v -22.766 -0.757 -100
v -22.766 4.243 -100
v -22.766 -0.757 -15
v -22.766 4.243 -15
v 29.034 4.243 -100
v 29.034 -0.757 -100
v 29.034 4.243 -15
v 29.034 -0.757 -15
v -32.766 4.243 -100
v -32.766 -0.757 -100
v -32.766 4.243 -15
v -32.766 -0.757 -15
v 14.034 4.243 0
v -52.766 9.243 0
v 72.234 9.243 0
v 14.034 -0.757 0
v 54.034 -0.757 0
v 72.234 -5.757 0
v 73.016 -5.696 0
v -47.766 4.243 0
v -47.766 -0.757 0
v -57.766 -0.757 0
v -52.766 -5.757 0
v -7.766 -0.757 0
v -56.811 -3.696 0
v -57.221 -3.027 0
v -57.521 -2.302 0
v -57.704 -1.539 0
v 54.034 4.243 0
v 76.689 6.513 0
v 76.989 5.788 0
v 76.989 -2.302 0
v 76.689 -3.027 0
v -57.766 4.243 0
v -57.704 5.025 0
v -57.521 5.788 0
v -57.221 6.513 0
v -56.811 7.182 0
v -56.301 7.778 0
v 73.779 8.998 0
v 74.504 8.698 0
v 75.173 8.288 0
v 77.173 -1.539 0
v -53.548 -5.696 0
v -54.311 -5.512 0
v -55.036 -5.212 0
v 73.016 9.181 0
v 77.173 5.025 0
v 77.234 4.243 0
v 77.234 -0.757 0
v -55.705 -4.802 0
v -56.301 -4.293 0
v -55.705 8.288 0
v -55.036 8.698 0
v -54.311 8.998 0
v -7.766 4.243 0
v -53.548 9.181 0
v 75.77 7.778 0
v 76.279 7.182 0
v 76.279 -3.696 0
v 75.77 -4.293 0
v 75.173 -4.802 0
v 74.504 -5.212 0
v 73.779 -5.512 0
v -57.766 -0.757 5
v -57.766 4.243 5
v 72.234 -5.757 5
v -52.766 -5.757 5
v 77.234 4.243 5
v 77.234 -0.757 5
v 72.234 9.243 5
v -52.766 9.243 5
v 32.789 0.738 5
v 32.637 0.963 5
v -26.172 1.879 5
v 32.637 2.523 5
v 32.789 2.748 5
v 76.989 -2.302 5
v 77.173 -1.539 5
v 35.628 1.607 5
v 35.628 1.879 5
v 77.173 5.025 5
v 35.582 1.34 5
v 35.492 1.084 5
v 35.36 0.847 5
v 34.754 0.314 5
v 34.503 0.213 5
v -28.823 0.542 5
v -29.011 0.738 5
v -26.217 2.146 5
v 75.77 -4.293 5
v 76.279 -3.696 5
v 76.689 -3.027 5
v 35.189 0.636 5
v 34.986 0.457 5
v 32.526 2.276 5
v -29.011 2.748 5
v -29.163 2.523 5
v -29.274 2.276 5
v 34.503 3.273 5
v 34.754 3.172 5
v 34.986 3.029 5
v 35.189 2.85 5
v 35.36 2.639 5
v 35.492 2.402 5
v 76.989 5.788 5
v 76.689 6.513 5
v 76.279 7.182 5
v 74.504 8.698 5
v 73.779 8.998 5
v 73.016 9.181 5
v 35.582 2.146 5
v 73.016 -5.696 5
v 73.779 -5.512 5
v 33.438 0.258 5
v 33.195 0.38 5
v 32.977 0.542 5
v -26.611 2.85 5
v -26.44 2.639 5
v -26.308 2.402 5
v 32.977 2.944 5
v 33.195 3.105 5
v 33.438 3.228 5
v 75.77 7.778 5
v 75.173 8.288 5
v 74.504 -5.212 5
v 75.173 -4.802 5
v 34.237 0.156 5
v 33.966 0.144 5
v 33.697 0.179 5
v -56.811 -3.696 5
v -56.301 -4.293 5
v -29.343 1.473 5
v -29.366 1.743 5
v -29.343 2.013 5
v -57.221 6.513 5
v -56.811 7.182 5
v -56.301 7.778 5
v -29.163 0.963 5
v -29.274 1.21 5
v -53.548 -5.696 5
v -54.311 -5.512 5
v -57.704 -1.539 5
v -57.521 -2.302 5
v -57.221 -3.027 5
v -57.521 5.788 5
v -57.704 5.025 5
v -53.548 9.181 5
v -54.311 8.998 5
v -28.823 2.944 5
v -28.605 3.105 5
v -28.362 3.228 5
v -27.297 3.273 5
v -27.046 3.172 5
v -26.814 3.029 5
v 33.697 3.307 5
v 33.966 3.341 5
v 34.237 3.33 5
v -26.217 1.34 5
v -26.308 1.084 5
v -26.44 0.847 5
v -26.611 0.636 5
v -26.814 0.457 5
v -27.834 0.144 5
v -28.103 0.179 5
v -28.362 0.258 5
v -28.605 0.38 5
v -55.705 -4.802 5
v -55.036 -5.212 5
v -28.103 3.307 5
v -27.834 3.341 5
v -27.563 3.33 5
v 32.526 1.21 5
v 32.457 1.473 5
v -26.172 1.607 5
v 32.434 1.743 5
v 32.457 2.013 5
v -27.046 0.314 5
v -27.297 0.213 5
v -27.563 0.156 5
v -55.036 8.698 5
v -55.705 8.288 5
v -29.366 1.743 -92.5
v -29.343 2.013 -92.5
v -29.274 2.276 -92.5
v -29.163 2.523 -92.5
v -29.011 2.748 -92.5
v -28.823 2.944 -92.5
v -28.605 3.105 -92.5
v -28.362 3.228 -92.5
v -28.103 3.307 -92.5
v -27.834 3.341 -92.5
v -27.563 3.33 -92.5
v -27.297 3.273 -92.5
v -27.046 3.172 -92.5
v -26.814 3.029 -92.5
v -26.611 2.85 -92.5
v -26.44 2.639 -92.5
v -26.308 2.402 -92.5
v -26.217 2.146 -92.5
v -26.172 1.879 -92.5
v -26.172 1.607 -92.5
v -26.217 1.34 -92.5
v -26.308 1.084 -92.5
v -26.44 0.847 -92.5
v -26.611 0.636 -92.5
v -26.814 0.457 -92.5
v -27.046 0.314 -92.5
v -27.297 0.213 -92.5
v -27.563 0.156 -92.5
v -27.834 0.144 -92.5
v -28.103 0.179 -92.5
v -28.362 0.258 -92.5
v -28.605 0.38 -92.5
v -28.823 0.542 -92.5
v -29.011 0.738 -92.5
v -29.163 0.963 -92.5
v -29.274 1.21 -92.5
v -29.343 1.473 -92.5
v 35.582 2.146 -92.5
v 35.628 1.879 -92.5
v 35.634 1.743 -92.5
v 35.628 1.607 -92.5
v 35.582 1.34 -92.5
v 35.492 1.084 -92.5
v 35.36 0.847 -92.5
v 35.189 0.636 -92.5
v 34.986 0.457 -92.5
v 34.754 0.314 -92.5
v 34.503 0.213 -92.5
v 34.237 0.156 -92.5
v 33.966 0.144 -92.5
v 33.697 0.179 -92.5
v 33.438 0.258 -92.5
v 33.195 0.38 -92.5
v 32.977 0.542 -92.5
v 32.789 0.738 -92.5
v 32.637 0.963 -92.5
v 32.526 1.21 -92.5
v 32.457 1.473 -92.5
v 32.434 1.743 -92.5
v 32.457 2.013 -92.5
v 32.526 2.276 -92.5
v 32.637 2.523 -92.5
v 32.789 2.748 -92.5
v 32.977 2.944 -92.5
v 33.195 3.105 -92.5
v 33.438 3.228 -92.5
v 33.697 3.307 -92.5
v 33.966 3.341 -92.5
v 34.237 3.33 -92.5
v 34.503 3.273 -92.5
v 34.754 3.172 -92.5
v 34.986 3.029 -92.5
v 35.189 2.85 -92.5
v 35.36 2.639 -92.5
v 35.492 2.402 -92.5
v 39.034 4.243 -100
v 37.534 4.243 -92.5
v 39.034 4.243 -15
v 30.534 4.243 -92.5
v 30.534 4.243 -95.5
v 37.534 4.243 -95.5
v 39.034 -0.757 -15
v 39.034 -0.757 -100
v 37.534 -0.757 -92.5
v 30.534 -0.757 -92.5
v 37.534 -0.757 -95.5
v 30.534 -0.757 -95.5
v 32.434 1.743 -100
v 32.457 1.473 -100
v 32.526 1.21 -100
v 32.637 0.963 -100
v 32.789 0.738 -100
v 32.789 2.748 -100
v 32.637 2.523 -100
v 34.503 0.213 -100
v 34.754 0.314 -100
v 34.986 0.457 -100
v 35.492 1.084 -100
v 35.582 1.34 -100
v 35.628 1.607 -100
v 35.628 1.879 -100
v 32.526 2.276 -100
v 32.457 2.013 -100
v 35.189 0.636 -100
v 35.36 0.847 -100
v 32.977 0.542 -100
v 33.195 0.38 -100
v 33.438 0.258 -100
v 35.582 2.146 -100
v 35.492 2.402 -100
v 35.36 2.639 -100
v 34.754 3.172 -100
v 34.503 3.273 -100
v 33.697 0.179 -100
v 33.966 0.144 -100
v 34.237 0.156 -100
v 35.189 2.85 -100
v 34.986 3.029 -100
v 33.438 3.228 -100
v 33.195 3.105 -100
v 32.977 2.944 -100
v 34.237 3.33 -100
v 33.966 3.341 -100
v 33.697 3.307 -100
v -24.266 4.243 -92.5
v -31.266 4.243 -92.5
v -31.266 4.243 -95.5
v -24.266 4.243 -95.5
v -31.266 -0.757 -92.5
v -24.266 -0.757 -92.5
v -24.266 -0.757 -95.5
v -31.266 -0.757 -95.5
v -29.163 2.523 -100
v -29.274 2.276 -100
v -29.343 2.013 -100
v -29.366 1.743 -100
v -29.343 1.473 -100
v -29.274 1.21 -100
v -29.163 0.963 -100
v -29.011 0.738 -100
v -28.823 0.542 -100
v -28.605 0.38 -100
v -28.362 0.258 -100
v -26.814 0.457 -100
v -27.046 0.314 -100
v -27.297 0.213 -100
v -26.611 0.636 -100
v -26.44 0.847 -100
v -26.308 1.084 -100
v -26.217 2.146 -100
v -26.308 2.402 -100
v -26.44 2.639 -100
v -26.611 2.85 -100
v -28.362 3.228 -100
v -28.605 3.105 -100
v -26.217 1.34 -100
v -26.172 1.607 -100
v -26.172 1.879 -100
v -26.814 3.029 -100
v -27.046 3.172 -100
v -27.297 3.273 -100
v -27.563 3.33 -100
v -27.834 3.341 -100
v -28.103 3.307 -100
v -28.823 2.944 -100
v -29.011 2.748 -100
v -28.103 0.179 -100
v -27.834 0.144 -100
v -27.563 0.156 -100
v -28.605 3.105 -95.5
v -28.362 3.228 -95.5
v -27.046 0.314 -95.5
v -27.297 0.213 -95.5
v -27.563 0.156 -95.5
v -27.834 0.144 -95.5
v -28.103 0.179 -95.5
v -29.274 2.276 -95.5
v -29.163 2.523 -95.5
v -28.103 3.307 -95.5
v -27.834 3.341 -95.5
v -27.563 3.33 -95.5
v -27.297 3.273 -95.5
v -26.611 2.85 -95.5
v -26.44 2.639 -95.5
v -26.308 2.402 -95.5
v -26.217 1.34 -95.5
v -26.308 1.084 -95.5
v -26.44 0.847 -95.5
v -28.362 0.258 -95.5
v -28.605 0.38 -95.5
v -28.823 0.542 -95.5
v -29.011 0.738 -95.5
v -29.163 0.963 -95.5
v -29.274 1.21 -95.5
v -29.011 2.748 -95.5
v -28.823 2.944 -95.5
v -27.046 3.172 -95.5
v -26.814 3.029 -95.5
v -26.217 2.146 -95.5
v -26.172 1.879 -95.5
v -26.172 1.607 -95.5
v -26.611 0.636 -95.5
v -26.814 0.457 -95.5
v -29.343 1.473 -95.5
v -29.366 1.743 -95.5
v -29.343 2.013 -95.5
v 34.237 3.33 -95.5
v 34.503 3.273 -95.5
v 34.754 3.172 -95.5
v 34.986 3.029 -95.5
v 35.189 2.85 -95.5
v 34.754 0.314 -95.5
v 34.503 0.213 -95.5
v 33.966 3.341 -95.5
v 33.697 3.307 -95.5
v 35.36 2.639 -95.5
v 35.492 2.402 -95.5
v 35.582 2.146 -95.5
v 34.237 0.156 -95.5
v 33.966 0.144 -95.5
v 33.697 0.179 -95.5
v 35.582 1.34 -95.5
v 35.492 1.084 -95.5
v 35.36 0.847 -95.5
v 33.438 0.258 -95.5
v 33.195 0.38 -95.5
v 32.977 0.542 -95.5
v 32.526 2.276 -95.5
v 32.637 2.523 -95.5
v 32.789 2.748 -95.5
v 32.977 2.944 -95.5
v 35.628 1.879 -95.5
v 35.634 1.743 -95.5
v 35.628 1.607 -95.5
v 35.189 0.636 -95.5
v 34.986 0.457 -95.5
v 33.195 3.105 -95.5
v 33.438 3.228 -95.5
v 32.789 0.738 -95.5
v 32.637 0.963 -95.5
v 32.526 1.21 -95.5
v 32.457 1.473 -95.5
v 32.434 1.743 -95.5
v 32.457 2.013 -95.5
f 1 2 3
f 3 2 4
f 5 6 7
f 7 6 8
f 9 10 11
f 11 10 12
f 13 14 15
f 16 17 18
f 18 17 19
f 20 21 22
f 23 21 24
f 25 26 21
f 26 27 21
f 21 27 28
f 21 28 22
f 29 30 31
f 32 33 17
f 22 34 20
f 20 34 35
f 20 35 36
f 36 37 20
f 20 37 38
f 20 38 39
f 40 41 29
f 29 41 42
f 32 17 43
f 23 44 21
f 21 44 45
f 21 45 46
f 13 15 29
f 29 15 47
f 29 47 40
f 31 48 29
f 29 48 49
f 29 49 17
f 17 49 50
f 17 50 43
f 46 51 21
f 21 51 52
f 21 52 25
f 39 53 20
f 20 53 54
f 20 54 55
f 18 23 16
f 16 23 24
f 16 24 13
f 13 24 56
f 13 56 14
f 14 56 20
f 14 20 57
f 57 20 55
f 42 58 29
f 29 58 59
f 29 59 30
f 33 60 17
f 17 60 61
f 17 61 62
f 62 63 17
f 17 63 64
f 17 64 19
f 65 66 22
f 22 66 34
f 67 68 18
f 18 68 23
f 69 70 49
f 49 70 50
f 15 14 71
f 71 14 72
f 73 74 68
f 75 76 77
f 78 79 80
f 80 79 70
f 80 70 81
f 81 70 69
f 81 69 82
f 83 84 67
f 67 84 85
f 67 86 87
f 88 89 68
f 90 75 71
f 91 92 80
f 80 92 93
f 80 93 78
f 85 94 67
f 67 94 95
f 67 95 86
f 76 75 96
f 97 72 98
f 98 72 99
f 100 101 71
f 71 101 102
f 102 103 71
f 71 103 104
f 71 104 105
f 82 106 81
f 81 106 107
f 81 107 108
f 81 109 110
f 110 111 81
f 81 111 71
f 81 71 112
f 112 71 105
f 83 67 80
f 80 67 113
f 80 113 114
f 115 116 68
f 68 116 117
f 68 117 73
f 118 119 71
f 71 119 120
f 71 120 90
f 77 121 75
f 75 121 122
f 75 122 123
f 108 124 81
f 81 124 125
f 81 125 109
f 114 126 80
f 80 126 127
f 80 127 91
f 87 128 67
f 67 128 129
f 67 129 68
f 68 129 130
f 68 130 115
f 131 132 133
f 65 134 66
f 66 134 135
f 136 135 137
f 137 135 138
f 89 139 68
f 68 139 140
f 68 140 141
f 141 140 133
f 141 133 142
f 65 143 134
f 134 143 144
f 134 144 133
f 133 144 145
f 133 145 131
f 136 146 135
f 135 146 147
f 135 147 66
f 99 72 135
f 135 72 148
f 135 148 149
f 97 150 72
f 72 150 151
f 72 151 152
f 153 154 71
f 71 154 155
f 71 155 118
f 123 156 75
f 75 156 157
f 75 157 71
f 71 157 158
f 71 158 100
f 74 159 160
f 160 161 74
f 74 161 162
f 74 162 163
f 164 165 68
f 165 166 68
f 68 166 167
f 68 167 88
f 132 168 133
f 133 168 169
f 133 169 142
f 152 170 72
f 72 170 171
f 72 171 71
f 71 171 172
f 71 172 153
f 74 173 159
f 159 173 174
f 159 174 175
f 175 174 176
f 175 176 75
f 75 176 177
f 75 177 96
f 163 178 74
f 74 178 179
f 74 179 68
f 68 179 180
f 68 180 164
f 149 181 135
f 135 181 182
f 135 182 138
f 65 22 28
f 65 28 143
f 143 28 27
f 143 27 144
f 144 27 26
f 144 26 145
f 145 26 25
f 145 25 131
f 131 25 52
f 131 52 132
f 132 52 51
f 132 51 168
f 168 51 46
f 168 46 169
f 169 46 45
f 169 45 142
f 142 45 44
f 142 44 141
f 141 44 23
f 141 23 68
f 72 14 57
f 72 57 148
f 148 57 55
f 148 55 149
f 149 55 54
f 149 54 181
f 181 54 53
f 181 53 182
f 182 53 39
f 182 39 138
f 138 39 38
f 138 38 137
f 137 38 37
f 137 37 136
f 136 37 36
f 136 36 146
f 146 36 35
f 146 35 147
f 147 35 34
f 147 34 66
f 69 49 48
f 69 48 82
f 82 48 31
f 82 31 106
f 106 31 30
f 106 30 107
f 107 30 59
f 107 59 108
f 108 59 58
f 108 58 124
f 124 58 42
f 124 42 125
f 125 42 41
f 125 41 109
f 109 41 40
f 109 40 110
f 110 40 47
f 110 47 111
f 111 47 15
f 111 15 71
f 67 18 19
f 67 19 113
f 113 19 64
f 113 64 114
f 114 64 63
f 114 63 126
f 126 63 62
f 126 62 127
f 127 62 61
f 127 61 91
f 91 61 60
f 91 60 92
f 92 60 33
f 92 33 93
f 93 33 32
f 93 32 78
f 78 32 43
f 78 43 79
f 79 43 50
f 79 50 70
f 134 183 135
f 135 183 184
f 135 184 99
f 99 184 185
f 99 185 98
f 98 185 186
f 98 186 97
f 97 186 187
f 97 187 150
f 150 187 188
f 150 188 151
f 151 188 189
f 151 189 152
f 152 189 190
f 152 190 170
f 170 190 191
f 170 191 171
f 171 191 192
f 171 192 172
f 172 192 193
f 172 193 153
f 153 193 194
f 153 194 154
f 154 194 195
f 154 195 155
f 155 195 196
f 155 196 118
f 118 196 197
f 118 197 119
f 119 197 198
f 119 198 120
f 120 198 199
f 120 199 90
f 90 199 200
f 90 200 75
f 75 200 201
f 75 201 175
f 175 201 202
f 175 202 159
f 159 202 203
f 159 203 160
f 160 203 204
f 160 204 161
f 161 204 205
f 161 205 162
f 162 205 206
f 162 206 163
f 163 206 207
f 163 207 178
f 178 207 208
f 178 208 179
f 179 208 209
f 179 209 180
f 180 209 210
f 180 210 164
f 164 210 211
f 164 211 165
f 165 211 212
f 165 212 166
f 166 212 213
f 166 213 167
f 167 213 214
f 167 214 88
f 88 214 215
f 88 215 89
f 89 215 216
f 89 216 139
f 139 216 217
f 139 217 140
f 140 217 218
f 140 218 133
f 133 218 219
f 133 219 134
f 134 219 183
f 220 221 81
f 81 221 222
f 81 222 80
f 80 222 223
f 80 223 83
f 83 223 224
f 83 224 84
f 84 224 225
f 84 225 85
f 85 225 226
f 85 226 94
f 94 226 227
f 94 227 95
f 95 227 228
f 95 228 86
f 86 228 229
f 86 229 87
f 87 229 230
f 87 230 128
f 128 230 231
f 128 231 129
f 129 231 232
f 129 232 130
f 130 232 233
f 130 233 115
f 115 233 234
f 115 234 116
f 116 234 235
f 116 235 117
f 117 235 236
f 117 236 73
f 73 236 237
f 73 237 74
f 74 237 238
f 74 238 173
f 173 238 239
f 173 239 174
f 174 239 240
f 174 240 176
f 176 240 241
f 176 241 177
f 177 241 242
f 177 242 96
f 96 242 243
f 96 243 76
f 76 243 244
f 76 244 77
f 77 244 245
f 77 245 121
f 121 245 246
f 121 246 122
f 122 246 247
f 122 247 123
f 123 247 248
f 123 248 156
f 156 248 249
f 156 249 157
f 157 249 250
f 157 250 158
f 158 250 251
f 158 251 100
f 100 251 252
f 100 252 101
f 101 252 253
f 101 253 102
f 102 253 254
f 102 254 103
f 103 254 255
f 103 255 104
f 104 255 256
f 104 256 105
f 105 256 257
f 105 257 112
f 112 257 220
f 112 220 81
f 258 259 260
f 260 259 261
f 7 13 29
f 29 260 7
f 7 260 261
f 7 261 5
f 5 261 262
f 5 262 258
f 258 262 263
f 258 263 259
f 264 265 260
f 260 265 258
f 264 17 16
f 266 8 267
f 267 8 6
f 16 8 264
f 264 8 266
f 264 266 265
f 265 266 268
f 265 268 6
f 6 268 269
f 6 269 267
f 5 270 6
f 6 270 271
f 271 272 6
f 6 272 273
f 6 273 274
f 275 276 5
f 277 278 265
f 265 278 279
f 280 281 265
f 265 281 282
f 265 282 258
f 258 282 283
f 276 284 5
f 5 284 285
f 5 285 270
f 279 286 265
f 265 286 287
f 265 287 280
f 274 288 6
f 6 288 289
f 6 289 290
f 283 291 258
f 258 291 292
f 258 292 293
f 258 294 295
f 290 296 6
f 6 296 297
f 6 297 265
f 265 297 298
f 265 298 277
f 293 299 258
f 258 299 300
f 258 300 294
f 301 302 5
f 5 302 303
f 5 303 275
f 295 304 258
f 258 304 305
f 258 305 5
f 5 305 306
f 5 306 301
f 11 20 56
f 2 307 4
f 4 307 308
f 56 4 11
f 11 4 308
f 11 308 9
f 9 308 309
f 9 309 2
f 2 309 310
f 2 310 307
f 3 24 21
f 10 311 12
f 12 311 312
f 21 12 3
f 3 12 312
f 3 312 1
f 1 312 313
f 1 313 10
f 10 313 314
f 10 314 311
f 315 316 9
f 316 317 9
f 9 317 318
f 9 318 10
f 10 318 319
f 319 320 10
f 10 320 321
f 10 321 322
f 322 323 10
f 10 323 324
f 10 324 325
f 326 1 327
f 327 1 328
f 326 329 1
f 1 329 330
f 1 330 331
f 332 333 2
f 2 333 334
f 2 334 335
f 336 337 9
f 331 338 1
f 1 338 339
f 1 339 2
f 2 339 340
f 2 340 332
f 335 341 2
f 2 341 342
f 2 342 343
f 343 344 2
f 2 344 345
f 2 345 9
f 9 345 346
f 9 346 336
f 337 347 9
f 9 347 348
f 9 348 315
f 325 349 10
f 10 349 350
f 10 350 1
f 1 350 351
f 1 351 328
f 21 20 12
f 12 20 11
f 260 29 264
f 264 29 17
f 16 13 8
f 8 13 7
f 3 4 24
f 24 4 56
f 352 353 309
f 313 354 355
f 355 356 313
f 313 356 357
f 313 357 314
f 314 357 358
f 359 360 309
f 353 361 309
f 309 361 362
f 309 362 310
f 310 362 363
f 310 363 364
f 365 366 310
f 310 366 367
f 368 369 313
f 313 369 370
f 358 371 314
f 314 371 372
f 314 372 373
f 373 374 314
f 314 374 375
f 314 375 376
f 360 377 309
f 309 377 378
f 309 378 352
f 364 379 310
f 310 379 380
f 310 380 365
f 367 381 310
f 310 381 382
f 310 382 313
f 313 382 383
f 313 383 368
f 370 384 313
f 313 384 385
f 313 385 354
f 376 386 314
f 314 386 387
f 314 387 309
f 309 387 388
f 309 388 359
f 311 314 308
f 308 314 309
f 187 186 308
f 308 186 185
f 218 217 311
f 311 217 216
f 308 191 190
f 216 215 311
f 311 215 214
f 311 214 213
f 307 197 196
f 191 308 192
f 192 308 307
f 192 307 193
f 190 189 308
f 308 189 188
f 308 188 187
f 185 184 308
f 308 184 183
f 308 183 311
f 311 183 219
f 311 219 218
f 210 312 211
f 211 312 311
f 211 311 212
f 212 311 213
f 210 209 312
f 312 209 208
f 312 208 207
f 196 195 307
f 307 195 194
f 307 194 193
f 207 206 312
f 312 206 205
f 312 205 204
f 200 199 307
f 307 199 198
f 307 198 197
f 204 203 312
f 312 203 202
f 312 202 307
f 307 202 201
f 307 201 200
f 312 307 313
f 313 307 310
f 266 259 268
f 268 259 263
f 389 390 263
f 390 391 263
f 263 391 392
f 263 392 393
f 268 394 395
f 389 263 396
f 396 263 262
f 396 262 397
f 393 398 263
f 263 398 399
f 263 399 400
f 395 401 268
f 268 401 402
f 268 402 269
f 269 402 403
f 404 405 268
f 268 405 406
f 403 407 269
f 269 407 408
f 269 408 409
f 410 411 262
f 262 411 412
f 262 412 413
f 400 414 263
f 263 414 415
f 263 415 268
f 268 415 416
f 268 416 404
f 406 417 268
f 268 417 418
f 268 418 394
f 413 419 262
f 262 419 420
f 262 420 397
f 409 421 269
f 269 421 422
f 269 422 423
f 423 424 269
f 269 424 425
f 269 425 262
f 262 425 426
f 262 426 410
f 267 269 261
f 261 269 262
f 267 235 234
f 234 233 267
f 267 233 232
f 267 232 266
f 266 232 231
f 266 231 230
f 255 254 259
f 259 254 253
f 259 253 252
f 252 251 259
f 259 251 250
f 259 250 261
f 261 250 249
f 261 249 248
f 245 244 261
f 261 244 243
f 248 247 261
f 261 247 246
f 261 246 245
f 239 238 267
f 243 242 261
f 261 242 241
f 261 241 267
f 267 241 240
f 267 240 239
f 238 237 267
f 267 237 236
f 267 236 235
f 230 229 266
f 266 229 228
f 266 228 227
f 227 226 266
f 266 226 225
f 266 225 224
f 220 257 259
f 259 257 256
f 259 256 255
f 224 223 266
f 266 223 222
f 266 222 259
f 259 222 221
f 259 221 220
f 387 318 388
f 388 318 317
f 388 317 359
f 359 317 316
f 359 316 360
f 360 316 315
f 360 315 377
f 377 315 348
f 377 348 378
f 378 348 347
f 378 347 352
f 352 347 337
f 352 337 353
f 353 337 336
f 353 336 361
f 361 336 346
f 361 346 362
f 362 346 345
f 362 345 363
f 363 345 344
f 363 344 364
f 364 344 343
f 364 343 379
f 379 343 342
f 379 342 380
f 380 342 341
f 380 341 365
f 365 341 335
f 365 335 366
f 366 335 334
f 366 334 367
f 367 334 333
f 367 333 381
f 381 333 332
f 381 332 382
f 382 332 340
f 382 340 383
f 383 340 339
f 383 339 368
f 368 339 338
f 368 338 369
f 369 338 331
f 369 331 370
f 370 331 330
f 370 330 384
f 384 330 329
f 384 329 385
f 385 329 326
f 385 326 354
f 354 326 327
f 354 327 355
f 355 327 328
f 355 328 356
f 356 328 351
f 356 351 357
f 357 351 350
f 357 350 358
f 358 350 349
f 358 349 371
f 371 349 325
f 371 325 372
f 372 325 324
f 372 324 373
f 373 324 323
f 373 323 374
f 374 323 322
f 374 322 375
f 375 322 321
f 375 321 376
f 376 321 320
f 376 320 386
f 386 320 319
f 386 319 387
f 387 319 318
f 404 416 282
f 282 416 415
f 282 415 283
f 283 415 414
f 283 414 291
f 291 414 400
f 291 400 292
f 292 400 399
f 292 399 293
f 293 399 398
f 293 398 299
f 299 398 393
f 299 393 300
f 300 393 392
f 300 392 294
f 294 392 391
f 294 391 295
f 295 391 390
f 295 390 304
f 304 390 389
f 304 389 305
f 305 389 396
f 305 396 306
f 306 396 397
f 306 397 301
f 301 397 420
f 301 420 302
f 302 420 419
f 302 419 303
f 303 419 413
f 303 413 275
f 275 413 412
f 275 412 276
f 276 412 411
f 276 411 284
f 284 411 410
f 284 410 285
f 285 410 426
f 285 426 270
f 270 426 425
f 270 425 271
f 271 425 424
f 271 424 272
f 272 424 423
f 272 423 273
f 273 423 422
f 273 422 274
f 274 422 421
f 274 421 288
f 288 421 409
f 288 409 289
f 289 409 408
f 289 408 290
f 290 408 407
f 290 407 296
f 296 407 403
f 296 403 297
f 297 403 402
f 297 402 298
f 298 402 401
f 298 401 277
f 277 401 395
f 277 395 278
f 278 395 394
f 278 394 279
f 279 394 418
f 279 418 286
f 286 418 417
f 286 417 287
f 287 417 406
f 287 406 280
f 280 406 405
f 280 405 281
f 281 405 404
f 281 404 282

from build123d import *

# Parameters (mm, degrees)
ESBO_O1_W                  = 135
ESBO_O1_H                  = 15
RESSALTO_EXTRUS_O1_DEPTH   = 5
FILETE1_R                  = 5
FILETE2_R                  = 5
ESBO_O3_R                  = 1.6
CORTE_EXTRUS_O1_DEPTH      = 5
ESBO_O5_W                  = 10
ESBO_O5_H                  = 5
RESSALTO_EXTRUS_O4_DEPTH   = 100
RESSALTO_EXTRUS_O5_START   = -2.5
RESSALTO_EXTRUS_O5_DEPTH   = 5
RESSALTO_EXTRUS_O6_DEPTH   = 5
RESSALTO_EXTRUS_O7_START   = -2.5
RESSALTO_EXTRUS_O7_DEPTH   = 5
CORTE_EXTRUS_O2_DEPTH      = 100
CORTE_EXTRUS_O2_DEPTH_BACK = 100
ESBO_O10_W                 = 7
ESBO_O10_H                 = 3
ESBO_O11_R                 = 1.6
CORTE_EXTRUS_O3_DEPTH      = 131.673419179


with BuildPart() as part:
    # Esboço1 → Ressalto-extrusão1 (new body)
    with BuildSketch(Plane.XY):
        with Locations((9.734129461, 1.742928443)):
            Rectangle(ESBO_O1_W, ESBO_O1_H)
    extrude(amount=RESSALTO_EXTRUS_O1_DEPTH)

    # Filete1
    filete1_edges = [part.edges().sort_by_distance(p)[0] for p in [
        (-57.765870539, 9.242928443, 2.5),
        (-57.765870539, -5.757071557, 2.5),
    ]]
    fillet(filete1_edges, radius=FILETE1_R)

    # Filete2
    filete2_edges = [part.edges().sort_by_distance(p)[0] for p in [
        (77.234129461, 9.242928443, 2.5),
        (77.234129461, -5.757071557, 2.5),
    ]]
    fillet(filete2_edges, radius=FILETE2_R)

    # Esboço3 → Corte-extrusão1 (cut)
    with BuildSketch(Plane(origin=(0, 0, 0), x_dir=(-1, 0, 0), z_dir=(0, 0, -1))):
        with Locations((27.765870539, 1.742928443)):
            Circle(ESBO_O3_R)
        with Locations((-34.034129461, 1.742928443)):
            Circle(ESBO_O3_R)
    extrude(amount=-CORTE_EXTRUS_O1_DEPTH, mode=Mode.SUBTRACT)

    # Esboço5 → Ressalto-extrusão4 (add)
    with BuildSketch(Plane(origin=(0, 0, 0), x_dir=(-1, 0, 0), z_dir=(0, 0, -1))):
        with Locations((-34.034129461, 1.742928443)):
            Rectangle(ESBO_O5_W, ESBO_O5_H)
        with Locations((27.765870539, 1.742928443)):
            Rectangle(ESBO_O5_W, ESBO_O5_H)
    extrude(amount=RESSALTO_EXTRUS_O4_DEPTH)

    # Esboço7 → Ressalto-extrusão5 (add)
    with BuildSketch(Plane(origin=(0, 1.742928443, 0), x_dir=(1, 0, 0), z_dir=(0, 1, 0)).offset(RESSALTO_EXTRUS_O5_START)):
        Polygon((-32.765870539, 15), (-32.765870539, 0), (-47.765870539, 0), align=None)
    extrude(amount=RESSALTO_EXTRUS_O5_DEPTH)

    # Esboço8 → Ressalto-extrusão6 (add)
    with BuildSketch(Plane(origin=(0, 4.242928443, 0), x_dir=(1, 0, 0), z_dir=(0, 1, 0))):
        Polygon((39.034129461, 15), (39.034129461, 0), (54.034129461, 0), align=None)
    extrude(amount=-RESSALTO_EXTRUS_O6_DEPTH)

    # Esboço9 → Ressalto-extrusão7 (add)
    with BuildSketch(Plane(origin=(0, 1.742928443, 0), x_dir=(1, 0, 0), z_dir=(0, 1, 0)).offset(RESSALTO_EXTRUS_O7_START)):
        Polygon((29.034129461, 0), (14.034129461, 0), (29.034129461, 15), align=None)
        Polygon((-7.765870539, 0), (-22.765870539, 0), (-22.765870539, 15), align=None)
    extrude(amount=RESSALTO_EXTRUS_O7_DEPTH)

    # Esboço10 → Corte-extrusão2 (cut, two sides: drawn at the far end of the back side and taken through both)
    with BuildSketch(Plane(origin=(0, 1.742928443, 0), x_dir=(1, 0, 0), z_dir=(0, 1, 0)).offset(-CORTE_EXTRUS_O2_DEPTH_BACK)):
        with Locations((-27.765870539, 94)):
            Rectangle(ESBO_O10_W, ESBO_O10_H)
        with Locations((34.034129461, 94)):
            Rectangle(ESBO_O10_W, ESBO_O10_H)
    extrude(amount=CORTE_EXTRUS_O2_DEPTH + CORTE_EXTRUS_O2_DEPTH_BACK, mode=Mode.SUBTRACT)

    # Esboço11 → Corte-extrusão3 (cut, through all)
    with BuildSketch(Plane(origin=(0, 0, -100), x_dir=(-1, 0, 0), z_dir=(0, 0, -1))):
        with Locations((27.765870539, 1.742928443)):
            Circle(ESBO_O11_R)
        with Locations((-34.034129461, 1.742928443)):
            Circle(ESBO_O11_R)
    extrude(amount=-CORTE_EXTRUS_O3_DEPTH, mode=Mode.SUBTRACT)


solid = part.part
